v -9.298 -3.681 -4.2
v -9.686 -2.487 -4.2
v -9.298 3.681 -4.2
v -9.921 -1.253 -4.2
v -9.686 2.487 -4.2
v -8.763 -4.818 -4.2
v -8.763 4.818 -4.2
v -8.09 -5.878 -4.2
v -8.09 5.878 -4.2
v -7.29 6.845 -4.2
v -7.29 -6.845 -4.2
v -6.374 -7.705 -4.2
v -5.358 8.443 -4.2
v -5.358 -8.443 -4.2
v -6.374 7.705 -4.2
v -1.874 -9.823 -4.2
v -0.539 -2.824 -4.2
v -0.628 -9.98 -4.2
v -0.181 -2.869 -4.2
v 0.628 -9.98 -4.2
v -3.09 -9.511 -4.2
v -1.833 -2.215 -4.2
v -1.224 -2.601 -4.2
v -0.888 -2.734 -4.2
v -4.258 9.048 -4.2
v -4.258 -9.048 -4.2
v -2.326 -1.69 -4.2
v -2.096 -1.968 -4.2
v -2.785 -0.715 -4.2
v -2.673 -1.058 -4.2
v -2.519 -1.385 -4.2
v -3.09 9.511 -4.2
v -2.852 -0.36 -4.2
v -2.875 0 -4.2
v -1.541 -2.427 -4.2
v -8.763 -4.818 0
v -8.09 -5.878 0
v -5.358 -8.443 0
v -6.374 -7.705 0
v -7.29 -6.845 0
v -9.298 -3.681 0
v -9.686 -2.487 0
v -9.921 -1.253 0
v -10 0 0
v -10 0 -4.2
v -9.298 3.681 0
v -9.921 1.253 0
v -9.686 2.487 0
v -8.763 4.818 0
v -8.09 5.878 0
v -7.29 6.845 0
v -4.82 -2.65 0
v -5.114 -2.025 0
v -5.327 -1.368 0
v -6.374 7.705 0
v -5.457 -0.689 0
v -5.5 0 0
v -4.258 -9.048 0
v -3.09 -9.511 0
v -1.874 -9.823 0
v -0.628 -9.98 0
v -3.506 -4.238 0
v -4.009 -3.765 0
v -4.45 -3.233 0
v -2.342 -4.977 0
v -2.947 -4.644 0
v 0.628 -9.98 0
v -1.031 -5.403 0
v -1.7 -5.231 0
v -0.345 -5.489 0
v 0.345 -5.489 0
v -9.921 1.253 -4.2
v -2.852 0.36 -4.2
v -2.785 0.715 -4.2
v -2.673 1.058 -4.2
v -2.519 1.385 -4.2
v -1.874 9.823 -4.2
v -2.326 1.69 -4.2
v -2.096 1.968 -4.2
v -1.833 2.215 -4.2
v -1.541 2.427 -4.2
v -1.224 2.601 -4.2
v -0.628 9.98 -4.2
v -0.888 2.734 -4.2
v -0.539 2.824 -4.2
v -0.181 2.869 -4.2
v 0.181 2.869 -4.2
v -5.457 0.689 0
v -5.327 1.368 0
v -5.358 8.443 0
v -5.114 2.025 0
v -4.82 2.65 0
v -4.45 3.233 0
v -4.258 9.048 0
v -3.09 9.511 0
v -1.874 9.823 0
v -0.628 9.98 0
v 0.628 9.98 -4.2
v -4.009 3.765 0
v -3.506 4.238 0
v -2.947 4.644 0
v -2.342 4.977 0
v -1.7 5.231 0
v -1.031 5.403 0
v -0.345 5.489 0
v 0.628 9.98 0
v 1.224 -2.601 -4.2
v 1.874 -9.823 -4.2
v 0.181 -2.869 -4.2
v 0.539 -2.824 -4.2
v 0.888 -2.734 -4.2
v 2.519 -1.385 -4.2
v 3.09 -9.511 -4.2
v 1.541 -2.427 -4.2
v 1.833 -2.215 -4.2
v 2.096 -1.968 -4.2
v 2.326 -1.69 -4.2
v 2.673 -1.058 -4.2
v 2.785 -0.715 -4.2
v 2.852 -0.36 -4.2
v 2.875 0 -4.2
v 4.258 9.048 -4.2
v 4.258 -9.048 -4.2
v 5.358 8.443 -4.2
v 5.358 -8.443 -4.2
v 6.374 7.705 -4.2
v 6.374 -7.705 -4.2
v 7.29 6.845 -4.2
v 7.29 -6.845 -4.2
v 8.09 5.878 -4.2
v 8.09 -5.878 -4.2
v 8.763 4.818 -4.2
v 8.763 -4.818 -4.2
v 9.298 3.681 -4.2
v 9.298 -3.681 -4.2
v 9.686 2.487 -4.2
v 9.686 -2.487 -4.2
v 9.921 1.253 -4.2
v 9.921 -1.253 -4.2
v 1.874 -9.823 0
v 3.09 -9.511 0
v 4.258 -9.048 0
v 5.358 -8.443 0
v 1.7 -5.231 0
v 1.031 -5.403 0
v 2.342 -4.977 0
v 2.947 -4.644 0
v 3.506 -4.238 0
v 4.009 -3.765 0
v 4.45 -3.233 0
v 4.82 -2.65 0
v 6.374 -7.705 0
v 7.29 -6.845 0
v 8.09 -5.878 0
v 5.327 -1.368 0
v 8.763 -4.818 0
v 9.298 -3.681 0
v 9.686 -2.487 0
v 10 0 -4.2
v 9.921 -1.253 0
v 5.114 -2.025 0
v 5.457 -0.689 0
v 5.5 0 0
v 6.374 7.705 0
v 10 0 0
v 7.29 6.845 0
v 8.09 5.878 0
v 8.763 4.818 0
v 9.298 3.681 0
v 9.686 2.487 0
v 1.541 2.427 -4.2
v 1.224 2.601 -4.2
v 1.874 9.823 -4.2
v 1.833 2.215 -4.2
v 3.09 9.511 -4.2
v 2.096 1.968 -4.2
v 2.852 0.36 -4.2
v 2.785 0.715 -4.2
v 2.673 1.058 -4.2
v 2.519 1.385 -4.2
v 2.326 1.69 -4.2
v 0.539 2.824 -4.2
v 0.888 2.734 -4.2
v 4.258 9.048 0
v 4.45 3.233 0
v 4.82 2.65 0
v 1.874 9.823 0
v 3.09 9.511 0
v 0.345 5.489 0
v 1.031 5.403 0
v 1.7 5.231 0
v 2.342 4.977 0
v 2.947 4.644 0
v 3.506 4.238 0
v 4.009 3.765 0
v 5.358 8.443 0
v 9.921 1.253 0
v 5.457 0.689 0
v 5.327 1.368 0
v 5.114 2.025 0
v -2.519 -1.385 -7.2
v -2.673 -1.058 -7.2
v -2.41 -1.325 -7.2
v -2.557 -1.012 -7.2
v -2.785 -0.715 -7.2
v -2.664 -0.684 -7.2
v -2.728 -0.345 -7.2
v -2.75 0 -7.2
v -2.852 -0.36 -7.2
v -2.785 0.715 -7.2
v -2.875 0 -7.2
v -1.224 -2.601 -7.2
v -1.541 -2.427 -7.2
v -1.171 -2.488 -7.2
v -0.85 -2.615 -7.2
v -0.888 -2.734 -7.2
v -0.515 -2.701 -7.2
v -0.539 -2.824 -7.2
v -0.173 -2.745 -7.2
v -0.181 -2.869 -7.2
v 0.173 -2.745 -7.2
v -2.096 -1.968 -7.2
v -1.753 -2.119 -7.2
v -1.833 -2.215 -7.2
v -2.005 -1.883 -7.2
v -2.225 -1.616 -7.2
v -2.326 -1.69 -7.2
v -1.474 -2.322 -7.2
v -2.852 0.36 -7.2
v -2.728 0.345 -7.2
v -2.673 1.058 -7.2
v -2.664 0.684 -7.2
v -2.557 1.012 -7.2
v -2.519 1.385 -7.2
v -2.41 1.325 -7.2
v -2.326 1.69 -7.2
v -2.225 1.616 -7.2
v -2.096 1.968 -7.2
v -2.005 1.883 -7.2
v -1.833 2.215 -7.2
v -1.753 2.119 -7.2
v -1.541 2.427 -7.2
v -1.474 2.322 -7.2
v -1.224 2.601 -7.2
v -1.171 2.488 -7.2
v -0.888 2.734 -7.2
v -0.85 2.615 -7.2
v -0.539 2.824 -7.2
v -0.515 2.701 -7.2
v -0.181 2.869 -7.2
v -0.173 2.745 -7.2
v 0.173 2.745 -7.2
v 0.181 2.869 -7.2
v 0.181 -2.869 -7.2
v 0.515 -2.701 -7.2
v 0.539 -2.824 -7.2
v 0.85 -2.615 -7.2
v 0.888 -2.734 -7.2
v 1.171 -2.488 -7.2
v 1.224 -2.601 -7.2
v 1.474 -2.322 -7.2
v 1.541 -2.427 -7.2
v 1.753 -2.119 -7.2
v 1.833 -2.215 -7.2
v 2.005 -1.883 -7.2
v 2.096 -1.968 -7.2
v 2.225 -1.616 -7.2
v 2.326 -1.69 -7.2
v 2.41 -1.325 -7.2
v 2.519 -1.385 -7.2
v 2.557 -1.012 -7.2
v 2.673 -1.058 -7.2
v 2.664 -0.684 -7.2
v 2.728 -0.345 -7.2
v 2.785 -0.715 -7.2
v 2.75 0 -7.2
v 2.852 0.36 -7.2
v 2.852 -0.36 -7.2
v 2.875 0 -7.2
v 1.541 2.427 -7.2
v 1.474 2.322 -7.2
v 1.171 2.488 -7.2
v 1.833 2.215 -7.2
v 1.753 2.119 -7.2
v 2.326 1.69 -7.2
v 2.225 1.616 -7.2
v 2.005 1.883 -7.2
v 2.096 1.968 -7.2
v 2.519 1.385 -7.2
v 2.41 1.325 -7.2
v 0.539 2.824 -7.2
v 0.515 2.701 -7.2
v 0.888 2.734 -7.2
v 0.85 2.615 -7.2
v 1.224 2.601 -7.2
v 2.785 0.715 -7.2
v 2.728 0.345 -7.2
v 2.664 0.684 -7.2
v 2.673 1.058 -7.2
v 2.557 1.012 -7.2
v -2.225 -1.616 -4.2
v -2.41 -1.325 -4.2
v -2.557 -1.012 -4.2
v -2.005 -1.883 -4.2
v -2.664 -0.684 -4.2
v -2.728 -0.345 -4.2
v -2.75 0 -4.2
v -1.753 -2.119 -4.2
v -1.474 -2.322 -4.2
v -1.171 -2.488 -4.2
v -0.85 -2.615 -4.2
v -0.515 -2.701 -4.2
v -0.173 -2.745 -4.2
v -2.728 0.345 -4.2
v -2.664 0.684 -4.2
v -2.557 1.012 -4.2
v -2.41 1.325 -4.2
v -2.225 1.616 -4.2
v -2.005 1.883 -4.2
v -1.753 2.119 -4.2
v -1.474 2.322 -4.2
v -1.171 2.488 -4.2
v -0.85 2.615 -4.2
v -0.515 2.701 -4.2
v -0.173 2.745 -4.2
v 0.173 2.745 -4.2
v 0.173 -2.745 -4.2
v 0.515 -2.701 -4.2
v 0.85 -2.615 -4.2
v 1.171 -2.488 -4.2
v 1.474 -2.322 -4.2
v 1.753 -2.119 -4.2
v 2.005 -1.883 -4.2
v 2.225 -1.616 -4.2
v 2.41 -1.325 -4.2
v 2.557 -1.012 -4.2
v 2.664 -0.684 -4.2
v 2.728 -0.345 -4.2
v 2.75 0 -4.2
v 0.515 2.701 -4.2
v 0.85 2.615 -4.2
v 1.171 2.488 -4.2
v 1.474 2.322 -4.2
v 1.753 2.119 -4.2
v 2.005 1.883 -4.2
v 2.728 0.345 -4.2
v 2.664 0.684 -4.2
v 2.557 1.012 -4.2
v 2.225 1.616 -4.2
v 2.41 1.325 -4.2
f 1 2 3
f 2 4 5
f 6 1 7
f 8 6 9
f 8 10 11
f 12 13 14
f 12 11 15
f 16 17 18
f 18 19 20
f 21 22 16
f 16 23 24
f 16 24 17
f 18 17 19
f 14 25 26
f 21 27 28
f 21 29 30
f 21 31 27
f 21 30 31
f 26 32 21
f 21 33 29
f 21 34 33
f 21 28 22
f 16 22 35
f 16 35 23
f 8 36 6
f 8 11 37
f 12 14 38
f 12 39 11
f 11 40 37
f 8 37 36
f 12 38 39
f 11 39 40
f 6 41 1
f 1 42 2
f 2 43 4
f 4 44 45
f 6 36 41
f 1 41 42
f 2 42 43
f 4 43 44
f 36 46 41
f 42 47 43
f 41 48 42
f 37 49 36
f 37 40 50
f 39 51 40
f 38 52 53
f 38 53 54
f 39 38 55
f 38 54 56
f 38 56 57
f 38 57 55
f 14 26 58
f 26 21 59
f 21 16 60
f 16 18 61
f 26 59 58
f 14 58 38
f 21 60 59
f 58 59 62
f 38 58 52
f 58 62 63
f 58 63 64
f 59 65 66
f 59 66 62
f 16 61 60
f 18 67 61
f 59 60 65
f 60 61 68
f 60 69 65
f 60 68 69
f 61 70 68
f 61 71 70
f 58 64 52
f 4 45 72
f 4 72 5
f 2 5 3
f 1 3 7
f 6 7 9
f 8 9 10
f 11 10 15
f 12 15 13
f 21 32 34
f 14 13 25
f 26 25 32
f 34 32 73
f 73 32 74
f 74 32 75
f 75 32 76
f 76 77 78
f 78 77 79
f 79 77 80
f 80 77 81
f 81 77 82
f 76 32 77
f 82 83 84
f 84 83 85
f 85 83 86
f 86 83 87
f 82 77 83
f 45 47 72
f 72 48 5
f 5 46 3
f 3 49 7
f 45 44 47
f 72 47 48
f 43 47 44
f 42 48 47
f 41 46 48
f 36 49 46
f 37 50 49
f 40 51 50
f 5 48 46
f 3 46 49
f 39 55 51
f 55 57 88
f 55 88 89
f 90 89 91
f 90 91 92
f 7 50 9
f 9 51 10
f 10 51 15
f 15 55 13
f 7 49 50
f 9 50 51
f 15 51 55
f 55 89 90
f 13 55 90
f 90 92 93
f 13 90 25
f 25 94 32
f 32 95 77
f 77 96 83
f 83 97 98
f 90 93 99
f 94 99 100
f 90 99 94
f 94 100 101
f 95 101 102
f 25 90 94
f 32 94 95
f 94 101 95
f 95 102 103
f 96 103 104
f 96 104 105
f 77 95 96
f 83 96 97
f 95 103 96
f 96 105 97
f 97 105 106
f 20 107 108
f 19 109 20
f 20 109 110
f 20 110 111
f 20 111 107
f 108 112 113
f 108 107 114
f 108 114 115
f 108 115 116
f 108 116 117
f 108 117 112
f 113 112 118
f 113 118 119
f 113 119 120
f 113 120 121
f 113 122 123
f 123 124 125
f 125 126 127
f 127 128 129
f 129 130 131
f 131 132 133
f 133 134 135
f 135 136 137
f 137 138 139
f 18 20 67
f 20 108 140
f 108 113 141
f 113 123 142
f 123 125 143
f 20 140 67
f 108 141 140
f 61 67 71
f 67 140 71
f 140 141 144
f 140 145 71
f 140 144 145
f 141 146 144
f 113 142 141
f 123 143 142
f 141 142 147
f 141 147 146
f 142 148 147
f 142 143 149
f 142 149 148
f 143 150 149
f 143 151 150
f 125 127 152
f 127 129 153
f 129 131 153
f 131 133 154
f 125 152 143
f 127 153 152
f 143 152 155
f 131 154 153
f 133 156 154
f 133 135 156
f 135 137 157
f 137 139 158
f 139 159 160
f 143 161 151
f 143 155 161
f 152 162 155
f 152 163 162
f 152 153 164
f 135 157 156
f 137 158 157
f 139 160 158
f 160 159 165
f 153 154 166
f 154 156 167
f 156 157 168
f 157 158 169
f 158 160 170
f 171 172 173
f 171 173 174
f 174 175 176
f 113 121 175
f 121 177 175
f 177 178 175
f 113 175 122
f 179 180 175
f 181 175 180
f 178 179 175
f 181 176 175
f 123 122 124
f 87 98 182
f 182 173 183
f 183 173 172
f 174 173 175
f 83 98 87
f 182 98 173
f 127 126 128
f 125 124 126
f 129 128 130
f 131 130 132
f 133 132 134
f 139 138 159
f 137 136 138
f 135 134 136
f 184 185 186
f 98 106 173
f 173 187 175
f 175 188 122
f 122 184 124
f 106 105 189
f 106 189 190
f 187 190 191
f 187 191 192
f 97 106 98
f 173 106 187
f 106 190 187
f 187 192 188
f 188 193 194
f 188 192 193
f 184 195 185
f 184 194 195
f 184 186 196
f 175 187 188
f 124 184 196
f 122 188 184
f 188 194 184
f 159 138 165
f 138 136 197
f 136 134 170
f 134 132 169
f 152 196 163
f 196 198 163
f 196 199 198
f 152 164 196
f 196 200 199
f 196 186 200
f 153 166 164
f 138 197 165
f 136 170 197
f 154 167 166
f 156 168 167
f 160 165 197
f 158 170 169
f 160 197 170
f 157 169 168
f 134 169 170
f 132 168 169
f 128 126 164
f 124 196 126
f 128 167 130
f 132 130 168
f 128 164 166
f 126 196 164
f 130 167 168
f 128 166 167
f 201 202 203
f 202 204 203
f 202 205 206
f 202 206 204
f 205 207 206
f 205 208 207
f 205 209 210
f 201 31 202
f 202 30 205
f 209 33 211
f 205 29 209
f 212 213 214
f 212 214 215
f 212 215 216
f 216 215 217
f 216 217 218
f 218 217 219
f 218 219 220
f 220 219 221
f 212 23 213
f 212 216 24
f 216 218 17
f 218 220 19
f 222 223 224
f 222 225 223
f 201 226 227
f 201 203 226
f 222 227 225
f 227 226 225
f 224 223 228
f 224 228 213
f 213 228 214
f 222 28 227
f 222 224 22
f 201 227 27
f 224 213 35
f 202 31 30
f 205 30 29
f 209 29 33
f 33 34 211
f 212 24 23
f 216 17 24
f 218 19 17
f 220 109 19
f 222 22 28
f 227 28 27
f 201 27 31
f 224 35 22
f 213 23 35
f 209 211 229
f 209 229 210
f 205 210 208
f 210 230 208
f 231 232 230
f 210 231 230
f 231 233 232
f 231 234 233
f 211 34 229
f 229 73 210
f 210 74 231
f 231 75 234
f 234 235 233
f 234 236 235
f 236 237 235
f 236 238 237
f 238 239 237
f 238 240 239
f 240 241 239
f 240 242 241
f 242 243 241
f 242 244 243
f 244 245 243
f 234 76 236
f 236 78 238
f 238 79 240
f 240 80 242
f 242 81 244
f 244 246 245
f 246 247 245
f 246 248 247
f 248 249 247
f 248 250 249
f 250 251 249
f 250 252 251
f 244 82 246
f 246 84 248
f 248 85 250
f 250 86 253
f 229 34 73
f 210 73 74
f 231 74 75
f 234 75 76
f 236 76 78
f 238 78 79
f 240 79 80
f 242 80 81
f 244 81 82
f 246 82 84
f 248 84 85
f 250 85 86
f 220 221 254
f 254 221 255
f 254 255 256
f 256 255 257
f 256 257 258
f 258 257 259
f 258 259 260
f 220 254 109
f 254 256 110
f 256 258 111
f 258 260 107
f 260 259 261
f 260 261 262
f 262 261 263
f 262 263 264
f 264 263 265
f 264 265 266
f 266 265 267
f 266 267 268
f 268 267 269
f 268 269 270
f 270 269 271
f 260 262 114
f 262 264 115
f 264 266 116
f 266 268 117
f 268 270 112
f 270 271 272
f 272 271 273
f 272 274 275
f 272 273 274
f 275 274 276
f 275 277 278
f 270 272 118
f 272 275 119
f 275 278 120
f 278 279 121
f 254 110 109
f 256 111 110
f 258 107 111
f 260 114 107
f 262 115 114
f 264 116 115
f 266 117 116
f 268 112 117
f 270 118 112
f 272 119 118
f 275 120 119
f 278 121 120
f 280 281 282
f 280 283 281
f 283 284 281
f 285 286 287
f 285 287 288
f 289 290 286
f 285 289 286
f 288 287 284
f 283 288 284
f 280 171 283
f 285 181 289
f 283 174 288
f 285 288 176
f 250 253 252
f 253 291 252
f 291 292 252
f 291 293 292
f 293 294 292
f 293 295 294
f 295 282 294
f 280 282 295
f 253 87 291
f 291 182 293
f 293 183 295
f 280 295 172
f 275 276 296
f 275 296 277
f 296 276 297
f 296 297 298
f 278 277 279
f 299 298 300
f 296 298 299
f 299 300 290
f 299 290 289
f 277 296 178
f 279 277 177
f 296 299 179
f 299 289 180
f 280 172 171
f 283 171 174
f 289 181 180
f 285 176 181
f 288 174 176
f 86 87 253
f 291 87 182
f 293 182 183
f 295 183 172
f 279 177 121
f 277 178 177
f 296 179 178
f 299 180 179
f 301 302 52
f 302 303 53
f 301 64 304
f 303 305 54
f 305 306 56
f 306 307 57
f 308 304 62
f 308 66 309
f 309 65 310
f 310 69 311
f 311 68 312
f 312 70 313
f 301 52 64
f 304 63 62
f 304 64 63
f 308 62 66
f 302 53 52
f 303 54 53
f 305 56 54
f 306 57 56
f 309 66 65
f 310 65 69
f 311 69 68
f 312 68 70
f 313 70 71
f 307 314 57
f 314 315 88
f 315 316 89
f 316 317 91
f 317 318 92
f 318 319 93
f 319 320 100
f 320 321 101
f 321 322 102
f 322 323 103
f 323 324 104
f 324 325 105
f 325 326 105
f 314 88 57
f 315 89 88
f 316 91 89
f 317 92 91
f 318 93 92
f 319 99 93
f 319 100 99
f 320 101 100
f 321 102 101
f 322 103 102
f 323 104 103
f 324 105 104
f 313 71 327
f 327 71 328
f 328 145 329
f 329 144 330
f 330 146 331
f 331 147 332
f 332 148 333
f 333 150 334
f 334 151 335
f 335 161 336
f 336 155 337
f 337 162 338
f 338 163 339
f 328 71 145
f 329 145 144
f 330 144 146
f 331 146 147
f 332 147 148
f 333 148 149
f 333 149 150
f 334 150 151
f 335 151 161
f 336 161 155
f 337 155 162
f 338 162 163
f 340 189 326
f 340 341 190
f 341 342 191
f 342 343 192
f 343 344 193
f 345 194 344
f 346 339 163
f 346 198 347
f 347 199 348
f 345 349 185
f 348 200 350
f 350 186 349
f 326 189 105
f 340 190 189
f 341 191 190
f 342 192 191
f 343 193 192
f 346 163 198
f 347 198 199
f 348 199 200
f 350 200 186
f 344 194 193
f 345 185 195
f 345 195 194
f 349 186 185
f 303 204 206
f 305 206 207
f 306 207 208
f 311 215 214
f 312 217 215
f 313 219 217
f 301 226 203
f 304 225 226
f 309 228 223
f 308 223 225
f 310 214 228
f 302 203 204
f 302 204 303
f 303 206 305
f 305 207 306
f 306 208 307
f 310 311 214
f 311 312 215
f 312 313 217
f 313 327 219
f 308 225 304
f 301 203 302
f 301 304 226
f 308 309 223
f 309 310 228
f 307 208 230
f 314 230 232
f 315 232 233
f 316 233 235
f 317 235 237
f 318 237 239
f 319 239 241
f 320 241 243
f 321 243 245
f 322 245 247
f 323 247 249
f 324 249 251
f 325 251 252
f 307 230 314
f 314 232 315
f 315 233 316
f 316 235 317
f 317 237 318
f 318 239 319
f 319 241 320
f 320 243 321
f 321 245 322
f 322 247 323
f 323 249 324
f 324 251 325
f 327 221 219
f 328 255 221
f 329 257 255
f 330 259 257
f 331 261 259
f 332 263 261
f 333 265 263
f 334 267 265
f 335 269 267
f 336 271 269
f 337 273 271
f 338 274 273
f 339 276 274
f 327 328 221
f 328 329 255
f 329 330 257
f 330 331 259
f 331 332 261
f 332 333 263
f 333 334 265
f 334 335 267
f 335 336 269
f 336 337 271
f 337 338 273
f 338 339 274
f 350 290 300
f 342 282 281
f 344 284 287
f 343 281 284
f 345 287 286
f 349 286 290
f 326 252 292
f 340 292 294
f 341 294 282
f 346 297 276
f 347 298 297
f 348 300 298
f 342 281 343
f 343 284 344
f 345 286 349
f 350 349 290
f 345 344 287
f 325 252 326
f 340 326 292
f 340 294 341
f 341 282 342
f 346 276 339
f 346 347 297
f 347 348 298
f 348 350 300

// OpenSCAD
$fn = 50;


difference() {
	union() {
		translate(v = [0, 0, -4.2000000000]) {
			cylinder(h = 4.2000000000, r = 10.0000000000);
		}
		#translate(v = [0, 0, -7.2000000000]) {
			cylinder(h = 7.2000000000, r = 2.8750000000);
		}
	}
	union() {
		translate(v = [0, 0, 0]) {
			rotate(a = [0, 0, 0]) {
				difference() {
					union() {
						translate(v = [0, 0, -7.2000000000]) {
							cylinder(h = 7.2000000000, r = 2.2500000000);
						}
						translate(v = [0, 0, -4.2000000000]) {
							cylinder(h = 4.2000000000, r1 = 2.7500000000, r2 = 5.5000000000);
						}
						translate(v = [0, 0, -7.2000000000]) {
							cylinder(h = 7.2000000000, r = 2.7500000000);
						}
						translate(v = [0, 0, -7.2000000000]) {
							cylinder(h = 7.2000000000, r = 2.2500000000);
						}
					}
					union();
				}
			}
		}
	}
}
